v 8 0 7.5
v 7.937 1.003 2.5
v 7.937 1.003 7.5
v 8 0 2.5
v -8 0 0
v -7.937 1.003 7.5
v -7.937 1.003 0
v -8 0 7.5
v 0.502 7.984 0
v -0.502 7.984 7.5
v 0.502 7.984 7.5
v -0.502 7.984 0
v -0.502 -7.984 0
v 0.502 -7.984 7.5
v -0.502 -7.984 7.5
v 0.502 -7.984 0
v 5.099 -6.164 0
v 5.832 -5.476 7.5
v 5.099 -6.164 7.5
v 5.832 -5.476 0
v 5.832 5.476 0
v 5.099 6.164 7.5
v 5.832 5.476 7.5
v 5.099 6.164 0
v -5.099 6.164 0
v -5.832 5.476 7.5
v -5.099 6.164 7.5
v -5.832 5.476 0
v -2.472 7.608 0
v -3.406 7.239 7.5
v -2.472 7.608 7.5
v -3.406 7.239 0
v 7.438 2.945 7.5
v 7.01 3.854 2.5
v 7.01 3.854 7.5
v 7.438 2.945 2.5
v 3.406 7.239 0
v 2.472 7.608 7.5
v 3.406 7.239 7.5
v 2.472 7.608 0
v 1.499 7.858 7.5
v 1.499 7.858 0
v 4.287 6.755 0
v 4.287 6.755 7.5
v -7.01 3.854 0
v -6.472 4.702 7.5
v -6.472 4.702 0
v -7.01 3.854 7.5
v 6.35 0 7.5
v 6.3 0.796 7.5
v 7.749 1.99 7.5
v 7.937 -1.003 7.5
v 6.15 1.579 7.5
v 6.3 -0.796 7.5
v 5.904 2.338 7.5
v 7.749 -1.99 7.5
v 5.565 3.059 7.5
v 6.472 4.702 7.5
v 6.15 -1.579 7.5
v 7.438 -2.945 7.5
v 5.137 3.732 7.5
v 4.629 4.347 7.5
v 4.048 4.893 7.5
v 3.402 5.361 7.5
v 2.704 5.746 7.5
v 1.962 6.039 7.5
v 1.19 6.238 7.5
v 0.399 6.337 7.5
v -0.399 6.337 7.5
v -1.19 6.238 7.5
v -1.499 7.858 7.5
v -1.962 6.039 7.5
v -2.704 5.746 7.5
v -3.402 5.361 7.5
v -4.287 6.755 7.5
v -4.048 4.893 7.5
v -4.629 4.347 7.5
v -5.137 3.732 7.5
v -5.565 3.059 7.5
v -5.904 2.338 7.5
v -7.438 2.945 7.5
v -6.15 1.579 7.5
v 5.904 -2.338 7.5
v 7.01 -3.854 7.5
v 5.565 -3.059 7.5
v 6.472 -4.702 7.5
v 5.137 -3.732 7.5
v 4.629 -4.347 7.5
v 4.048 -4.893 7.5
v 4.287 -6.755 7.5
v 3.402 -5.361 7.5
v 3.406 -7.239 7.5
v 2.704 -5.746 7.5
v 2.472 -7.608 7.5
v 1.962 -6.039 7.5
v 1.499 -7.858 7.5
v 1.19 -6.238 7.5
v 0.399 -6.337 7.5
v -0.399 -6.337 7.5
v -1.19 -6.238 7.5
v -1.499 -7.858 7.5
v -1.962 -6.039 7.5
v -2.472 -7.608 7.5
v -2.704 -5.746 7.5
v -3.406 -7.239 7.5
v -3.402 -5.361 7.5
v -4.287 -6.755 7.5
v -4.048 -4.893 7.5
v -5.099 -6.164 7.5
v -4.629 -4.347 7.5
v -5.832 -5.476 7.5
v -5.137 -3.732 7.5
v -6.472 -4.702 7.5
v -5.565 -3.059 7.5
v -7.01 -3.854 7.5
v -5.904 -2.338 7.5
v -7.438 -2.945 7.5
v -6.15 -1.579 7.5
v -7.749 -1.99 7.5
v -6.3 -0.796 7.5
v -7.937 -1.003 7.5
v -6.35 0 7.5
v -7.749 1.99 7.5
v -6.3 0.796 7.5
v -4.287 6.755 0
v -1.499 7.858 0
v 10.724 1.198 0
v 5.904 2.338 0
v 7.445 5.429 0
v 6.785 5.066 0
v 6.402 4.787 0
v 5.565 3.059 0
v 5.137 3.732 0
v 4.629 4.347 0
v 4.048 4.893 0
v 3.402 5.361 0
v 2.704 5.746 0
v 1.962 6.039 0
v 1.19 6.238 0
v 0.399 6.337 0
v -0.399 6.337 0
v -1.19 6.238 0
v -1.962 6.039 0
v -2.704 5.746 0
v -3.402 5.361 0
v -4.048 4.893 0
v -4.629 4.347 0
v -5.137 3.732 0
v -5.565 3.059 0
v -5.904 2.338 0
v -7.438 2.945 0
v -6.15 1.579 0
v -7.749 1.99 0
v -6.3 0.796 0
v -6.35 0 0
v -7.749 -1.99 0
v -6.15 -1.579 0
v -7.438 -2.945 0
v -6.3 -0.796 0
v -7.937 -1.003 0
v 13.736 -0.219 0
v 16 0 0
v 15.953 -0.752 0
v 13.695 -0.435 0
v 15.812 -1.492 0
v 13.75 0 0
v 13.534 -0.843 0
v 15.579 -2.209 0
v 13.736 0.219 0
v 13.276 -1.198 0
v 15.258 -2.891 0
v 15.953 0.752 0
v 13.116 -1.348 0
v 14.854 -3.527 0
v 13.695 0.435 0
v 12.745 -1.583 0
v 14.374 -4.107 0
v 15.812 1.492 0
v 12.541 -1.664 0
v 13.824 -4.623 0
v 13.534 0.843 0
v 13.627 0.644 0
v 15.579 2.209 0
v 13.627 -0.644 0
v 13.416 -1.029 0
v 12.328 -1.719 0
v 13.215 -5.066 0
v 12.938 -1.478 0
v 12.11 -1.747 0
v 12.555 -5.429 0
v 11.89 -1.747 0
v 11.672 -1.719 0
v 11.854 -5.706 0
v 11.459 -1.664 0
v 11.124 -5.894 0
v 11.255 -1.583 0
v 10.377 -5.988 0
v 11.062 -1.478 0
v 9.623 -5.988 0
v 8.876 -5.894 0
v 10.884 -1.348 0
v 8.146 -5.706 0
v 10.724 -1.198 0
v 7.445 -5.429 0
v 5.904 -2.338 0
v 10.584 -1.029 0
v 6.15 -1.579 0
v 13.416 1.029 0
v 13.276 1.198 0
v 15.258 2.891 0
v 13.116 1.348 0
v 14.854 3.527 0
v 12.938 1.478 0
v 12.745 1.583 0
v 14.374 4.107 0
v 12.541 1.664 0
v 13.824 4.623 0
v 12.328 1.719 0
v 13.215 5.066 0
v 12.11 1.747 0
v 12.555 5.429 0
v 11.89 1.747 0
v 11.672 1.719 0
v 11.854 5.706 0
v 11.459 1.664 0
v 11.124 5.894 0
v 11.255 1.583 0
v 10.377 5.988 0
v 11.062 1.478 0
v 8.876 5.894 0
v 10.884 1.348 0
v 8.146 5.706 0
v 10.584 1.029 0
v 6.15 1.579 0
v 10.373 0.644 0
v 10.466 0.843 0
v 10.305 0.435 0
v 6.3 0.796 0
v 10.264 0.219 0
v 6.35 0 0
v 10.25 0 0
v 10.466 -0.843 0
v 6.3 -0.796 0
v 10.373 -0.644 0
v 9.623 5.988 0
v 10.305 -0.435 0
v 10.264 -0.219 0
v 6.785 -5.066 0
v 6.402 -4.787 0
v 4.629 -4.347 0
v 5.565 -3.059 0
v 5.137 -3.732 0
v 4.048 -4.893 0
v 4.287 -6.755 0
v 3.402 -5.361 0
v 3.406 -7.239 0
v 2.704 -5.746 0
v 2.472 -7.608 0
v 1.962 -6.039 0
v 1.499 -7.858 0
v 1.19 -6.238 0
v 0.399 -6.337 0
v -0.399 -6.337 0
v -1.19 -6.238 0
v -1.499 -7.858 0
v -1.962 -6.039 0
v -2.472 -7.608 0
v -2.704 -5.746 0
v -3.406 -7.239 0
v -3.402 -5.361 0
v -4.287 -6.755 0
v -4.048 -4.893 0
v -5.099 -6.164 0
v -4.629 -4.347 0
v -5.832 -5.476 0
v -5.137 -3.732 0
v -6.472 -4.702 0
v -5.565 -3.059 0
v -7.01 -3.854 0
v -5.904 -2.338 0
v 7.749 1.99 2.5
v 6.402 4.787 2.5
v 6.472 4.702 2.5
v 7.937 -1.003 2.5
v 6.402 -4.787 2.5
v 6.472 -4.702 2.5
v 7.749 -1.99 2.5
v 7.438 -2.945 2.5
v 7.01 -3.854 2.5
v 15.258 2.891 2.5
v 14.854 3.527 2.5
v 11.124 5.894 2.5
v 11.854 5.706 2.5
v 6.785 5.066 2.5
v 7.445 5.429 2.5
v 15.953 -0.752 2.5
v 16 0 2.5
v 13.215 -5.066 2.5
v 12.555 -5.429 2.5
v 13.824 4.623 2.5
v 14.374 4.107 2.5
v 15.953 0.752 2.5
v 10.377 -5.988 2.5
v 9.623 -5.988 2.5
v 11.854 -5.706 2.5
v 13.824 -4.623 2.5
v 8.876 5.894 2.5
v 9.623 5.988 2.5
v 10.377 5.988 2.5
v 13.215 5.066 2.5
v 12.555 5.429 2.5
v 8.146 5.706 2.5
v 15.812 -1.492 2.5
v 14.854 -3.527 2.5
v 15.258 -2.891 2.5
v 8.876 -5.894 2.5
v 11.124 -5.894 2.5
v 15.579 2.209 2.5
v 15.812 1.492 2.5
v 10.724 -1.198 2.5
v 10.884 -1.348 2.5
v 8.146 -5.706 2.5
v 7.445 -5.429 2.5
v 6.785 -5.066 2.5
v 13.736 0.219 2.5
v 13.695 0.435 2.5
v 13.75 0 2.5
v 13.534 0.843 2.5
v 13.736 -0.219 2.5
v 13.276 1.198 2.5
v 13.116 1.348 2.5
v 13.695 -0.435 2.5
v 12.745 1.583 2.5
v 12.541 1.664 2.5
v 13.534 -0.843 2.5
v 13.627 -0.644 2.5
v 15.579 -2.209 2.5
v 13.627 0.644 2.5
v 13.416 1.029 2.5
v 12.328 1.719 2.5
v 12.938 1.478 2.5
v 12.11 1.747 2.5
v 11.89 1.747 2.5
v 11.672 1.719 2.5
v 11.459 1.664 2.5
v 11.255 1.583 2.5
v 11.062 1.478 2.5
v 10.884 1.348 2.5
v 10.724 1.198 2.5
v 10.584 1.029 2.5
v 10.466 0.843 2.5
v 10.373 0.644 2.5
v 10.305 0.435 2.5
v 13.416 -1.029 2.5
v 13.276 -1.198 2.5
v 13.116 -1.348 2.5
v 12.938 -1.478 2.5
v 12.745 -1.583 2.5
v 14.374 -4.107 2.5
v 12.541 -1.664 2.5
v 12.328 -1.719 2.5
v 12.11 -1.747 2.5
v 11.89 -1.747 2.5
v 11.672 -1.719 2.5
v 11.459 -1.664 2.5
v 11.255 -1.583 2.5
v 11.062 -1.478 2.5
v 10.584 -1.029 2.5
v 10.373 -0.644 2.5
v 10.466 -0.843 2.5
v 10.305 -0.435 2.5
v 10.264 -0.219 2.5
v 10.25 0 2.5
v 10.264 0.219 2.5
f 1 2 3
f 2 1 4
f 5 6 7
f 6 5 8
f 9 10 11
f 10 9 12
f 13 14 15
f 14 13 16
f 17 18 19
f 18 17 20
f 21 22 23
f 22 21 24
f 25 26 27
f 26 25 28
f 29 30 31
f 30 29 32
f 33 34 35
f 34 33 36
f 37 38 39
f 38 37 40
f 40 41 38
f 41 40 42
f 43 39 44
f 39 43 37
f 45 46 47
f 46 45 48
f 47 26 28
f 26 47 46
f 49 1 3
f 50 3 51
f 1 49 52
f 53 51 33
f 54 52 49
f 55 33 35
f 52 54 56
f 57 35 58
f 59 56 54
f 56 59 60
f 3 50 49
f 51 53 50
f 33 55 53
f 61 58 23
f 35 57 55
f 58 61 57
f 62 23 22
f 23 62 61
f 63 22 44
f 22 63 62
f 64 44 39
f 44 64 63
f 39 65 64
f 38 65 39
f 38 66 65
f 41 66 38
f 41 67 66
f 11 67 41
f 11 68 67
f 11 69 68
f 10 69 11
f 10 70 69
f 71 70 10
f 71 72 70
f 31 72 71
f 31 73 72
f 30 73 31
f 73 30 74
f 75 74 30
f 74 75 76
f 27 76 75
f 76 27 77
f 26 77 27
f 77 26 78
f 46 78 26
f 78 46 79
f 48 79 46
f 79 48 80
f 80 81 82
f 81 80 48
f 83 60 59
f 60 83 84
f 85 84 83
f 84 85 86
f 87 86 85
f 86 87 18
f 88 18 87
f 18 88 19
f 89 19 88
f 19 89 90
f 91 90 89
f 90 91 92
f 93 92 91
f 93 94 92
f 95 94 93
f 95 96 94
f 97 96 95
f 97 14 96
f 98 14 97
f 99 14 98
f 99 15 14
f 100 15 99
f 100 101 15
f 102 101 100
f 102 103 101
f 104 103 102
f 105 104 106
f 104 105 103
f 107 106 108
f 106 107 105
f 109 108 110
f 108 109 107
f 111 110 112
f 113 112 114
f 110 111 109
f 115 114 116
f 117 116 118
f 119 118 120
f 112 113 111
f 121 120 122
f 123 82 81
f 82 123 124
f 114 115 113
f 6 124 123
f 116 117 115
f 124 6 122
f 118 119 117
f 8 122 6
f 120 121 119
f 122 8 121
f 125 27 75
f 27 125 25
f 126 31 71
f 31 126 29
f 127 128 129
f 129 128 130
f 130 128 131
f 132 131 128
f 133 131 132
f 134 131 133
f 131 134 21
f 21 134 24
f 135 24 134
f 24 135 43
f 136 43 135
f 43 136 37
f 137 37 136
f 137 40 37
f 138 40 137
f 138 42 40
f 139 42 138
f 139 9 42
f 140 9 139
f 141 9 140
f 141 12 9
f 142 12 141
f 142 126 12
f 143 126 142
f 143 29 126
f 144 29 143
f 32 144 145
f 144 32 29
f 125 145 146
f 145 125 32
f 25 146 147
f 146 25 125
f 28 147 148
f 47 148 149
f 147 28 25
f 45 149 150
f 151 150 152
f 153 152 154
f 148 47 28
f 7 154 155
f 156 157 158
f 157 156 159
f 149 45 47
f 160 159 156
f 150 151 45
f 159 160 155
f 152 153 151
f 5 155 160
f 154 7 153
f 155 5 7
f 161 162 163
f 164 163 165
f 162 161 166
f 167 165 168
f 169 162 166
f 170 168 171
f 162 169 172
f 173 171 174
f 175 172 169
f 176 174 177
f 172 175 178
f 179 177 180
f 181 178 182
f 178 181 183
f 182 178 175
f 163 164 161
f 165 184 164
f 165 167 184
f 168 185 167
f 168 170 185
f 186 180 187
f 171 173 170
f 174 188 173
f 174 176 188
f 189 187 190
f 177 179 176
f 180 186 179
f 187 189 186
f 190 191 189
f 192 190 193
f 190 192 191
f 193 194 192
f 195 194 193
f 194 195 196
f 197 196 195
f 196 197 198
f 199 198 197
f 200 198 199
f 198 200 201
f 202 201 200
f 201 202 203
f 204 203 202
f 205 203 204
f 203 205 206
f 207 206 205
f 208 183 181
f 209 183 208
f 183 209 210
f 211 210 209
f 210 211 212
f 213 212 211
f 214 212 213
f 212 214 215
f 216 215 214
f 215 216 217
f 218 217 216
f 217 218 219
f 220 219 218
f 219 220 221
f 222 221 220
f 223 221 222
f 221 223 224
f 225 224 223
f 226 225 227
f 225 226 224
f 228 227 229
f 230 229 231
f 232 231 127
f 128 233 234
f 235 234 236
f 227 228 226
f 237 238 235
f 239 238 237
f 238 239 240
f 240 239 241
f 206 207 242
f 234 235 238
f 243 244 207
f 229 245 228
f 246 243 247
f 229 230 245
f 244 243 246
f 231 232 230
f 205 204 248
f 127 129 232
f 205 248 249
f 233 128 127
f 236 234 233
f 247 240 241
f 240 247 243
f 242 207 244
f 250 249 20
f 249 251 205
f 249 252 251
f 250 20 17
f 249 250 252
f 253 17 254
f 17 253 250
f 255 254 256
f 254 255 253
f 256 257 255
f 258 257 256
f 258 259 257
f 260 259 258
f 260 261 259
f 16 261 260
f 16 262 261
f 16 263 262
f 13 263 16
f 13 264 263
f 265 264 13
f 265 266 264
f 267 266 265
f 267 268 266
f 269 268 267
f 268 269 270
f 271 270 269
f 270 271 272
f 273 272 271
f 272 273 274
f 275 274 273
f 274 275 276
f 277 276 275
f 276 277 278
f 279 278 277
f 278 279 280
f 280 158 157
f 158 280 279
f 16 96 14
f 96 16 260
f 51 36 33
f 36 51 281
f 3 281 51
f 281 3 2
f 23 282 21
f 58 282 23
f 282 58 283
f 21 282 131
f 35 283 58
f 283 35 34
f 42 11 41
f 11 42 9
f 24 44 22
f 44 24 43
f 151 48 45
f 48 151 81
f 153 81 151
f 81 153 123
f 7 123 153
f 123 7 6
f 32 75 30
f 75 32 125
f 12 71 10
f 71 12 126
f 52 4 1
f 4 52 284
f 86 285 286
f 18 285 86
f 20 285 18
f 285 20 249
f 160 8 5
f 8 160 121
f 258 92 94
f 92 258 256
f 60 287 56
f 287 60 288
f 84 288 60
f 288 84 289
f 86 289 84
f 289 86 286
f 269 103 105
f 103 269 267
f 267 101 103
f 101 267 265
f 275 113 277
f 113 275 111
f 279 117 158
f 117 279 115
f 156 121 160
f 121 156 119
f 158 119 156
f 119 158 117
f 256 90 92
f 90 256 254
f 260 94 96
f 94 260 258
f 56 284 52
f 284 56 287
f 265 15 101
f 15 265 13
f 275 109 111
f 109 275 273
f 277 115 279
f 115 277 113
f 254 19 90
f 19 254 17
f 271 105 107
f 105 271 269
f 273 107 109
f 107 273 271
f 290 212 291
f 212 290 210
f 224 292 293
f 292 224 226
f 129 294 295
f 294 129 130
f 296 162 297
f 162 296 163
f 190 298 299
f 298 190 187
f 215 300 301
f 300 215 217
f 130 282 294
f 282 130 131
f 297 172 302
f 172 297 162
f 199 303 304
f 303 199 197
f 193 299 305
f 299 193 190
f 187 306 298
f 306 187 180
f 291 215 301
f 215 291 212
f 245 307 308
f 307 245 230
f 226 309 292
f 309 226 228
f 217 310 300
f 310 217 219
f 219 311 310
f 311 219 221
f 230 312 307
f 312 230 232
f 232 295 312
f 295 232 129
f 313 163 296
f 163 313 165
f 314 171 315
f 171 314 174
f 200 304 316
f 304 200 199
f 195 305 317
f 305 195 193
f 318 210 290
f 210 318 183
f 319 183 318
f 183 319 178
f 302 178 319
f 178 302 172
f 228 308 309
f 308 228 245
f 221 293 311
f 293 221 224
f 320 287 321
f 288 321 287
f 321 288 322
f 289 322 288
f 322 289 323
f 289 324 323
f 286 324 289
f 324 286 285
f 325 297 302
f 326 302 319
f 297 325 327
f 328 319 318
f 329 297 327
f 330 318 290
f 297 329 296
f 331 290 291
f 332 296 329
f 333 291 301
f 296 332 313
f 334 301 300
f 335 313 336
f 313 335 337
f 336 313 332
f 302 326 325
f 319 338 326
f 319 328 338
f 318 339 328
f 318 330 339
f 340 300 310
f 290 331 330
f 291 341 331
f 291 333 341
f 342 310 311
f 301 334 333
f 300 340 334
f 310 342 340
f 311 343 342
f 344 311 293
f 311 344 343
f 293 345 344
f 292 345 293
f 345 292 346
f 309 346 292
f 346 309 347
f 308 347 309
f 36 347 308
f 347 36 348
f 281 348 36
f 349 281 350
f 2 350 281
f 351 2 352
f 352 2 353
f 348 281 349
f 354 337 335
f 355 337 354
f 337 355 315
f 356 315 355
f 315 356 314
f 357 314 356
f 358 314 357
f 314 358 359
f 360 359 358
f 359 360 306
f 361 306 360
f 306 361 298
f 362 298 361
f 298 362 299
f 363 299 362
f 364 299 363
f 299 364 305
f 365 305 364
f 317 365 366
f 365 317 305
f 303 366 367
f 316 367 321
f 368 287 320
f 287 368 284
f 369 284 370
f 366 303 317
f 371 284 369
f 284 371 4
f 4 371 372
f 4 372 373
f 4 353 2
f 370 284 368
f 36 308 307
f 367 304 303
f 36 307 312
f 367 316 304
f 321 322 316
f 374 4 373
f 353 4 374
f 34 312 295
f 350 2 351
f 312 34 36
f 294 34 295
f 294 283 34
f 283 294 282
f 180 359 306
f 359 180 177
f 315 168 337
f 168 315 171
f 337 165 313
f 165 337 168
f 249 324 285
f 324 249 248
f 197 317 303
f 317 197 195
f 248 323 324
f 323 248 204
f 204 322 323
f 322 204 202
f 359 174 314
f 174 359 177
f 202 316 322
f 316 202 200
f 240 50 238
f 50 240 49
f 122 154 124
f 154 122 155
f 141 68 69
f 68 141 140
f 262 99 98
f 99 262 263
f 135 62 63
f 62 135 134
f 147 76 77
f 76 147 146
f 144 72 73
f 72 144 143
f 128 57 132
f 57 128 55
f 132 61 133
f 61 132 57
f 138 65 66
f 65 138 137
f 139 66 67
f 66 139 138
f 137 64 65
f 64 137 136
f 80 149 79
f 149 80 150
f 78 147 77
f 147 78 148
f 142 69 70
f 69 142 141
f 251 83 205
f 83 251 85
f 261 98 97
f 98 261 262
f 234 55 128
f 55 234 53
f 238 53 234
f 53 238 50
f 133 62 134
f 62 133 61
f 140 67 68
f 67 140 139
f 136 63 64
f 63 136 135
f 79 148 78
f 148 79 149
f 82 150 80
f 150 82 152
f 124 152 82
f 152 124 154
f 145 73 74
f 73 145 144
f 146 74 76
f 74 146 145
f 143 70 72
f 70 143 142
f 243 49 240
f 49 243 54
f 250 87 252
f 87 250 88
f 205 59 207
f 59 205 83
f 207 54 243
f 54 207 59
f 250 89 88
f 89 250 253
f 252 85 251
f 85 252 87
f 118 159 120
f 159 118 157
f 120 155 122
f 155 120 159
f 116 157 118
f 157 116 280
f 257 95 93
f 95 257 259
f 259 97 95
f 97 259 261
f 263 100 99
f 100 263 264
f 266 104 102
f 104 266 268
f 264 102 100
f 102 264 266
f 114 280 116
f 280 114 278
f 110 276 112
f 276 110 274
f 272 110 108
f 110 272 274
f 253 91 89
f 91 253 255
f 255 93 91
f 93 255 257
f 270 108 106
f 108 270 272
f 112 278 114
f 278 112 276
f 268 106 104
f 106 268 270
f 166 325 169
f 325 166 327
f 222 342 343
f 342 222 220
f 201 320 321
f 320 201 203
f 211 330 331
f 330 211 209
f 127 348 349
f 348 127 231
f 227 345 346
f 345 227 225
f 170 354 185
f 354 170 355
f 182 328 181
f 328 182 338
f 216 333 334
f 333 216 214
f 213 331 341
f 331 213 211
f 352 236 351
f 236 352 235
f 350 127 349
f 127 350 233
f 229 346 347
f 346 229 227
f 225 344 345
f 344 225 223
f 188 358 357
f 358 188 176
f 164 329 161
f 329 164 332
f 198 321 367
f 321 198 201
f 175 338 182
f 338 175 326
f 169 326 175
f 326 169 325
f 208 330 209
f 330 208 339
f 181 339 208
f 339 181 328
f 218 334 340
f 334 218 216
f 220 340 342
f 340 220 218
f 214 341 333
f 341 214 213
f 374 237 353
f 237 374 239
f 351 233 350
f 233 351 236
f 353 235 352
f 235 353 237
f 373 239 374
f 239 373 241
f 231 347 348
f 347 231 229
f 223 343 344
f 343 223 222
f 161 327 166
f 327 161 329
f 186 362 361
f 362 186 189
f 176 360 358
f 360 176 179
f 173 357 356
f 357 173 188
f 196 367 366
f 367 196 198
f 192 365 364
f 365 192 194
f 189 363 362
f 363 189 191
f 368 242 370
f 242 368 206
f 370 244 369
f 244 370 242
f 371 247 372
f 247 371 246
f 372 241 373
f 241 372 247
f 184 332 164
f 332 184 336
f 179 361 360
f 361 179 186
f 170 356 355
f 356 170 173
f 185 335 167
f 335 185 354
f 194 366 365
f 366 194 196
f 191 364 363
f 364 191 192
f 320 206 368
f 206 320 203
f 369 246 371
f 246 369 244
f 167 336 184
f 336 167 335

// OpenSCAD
//for https://www.amazon.com/gp/product/B07BM1XRZQ
$fn=50;
difference(){
    union(){
    cylinder(r=8,h=7.5);
    translate([10,0,0])cylinder(r=6,h=2.5);
    }
    cylinder(r=12.7/2,h=7.5);
    translate([12,0,0])cylinder(r=1.75,h=3);
}
